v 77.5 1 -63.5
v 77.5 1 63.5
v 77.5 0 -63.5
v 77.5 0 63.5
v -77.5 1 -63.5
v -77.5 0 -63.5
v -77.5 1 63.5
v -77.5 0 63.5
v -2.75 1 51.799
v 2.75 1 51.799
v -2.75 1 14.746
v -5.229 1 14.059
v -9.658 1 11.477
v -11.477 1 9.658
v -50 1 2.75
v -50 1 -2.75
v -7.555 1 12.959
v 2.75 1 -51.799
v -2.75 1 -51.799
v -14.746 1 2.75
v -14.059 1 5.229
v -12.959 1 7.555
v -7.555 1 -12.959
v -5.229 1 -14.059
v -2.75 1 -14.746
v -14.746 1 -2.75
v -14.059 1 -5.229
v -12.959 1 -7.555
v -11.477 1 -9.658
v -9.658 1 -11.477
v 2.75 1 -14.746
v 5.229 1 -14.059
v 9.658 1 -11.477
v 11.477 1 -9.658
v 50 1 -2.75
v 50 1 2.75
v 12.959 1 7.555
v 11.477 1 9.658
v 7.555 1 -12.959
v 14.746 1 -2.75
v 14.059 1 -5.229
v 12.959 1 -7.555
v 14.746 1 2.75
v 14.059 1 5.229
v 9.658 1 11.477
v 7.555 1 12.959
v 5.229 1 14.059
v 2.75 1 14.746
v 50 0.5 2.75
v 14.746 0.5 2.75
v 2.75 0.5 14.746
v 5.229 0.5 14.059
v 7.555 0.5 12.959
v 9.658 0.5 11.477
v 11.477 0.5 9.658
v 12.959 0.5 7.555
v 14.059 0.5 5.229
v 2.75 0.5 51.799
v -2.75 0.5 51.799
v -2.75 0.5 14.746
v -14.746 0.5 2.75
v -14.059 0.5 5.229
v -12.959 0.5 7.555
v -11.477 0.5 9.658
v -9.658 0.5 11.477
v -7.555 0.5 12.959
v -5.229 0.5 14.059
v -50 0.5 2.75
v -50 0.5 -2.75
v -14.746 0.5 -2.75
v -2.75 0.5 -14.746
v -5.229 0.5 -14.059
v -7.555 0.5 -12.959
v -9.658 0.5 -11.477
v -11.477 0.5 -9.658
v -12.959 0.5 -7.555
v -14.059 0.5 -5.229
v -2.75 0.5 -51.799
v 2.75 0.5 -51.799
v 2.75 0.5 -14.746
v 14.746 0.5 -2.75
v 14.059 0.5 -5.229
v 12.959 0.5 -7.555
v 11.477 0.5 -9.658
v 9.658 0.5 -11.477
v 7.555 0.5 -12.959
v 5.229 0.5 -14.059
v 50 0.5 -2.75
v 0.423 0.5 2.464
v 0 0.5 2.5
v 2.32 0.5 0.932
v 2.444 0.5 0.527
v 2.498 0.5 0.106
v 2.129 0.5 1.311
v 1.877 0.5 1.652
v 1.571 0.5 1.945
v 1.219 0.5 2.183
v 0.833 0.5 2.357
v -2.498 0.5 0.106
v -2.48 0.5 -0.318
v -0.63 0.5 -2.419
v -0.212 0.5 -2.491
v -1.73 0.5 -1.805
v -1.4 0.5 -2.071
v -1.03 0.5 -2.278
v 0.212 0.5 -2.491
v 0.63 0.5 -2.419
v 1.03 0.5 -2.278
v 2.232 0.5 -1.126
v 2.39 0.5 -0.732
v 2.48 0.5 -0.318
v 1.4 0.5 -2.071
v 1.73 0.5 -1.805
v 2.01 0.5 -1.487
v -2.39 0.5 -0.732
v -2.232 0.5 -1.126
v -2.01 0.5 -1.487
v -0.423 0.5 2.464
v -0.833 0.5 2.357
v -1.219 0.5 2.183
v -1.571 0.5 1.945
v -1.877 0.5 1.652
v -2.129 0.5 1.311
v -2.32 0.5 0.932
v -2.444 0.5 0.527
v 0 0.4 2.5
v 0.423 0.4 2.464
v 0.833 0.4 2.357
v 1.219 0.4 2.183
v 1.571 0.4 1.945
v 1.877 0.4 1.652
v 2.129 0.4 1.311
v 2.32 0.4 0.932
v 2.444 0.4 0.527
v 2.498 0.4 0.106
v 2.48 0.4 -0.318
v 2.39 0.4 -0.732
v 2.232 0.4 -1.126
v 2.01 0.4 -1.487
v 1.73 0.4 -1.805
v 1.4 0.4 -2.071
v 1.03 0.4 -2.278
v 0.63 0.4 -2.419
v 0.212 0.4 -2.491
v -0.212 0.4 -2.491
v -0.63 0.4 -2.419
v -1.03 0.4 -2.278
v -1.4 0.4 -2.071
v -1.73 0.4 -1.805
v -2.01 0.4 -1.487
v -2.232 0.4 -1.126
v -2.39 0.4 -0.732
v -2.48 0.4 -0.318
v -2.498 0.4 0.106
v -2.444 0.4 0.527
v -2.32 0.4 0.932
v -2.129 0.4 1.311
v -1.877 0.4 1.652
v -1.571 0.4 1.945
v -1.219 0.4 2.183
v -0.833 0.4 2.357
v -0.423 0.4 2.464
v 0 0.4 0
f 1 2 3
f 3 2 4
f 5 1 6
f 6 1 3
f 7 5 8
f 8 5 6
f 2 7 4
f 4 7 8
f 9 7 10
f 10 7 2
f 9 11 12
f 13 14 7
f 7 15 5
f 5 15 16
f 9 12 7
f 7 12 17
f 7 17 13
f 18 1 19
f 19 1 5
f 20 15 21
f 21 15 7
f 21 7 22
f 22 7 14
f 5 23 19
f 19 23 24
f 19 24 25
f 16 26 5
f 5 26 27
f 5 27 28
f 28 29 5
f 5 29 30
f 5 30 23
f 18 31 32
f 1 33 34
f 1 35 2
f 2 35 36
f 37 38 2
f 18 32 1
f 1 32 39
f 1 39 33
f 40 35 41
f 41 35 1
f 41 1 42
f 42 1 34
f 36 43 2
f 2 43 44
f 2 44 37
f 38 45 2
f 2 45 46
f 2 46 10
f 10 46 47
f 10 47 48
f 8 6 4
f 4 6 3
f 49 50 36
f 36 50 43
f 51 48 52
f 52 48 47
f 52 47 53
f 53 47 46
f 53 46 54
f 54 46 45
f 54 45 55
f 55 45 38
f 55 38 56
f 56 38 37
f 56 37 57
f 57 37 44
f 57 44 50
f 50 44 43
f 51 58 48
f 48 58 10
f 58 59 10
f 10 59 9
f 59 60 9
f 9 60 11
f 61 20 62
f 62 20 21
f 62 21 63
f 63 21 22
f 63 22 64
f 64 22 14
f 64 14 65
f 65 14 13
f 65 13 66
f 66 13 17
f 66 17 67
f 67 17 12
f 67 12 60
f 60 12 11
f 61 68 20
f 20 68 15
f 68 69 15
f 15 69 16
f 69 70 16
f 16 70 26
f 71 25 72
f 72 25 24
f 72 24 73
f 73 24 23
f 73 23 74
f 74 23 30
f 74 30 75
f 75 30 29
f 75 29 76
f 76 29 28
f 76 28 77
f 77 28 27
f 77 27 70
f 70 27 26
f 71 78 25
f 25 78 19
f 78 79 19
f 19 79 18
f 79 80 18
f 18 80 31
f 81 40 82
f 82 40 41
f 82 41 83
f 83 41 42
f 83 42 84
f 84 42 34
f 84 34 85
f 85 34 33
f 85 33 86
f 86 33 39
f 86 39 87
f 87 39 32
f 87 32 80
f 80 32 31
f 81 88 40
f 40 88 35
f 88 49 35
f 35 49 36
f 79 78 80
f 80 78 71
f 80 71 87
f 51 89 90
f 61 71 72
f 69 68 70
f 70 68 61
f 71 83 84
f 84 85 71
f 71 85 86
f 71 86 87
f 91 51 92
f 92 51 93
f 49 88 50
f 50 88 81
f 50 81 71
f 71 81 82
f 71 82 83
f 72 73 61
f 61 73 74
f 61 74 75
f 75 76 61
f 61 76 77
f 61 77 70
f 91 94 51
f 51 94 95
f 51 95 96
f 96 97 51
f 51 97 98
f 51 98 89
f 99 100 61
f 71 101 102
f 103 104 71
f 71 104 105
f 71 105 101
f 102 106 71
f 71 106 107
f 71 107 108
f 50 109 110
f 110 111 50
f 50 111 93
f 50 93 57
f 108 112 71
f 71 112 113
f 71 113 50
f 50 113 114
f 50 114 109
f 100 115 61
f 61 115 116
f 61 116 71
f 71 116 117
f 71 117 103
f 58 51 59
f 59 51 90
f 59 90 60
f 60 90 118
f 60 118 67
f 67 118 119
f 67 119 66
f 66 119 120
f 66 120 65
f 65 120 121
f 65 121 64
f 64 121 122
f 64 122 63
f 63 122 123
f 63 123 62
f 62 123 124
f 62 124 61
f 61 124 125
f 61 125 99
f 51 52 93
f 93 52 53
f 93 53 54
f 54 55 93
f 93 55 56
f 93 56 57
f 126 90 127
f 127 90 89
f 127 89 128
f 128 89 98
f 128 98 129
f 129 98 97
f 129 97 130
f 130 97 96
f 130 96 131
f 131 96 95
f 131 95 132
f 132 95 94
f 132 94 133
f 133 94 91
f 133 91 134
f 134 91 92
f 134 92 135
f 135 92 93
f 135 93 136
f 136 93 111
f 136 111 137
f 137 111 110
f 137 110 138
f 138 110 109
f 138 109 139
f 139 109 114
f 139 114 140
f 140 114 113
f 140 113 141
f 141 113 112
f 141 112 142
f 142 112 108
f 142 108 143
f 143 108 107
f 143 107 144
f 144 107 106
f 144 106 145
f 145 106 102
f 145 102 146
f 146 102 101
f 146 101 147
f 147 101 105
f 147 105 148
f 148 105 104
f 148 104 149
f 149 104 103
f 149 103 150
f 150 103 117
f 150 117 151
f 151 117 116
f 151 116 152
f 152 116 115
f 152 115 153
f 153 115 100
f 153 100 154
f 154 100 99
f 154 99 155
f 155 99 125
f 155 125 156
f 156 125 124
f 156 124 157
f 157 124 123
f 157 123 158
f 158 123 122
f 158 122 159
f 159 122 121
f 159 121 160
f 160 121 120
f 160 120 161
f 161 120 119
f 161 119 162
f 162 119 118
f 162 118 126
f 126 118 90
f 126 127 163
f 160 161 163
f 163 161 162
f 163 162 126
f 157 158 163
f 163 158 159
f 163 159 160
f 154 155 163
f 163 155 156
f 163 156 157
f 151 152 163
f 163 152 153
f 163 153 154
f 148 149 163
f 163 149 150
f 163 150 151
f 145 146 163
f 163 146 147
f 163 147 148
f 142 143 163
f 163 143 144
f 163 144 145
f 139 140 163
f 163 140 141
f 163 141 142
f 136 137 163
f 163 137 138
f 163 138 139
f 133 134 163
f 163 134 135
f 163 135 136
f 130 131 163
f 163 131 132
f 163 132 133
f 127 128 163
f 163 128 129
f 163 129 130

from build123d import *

# Parameters (mm, degrees)
SKETCH1_W           = 155
SKETCH1_H           = 127
BOSS_EXTRUDE1_DEPTH = 1
CUT_EXTRUDE1_DEPTH  = 0.5
SKETCH3_R           = 2.5
CUT_EXTRUDE2_DEPTH  = 0.1


with BuildPart() as part:
    # Sketch1 → Boss-Extrude1 (new body)
    with BuildSketch(Plane(origin=(0, 0, 0), x_dir=(1, 0, 0), z_dir=(0, 1, 0))):
        Rectangle(SKETCH1_W, SKETCH1_H)
    extrude(amount=BOSS_EXTRUDE1_DEPTH)

    # Sketch2 → Cut-Extrude1 (cut)
    with BuildSketch(Plane(origin=(0, 1, 0), x_dir=(1, 0, 0), z_dir=(0, 1, 0))):
        with BuildLine():
            Line((2.75, -14.745762103), (2.75, -51.798849897))
            Line((2.75, -51.798849897), (-2.75, -51.798849897))
            Line((-2.75, -51.798849897), (-2.75, -14.745762103))
            ThreePointArc((-2.75, -14.745762103), (-10.606601718, -10.606601718), (-14.745762103, -2.75))
            Line((-14.745762103, -2.75), (-50, -2.75))
            Line((-50, -2.75), (-50, 2.75))
            Line((-50, 2.75), (-14.745762103, 2.75))
            ThreePointArc((-14.745762103, 2.75), (-10.606601718, 10.606601718), (-2.75, 14.745762103))
            Line((-2.75, 14.745762103), (-2.75, 51.798849897))
            Line((-2.75, 51.798849897), (2.75, 51.798849897))
            Line((2.75, 51.798849897), (2.75, 14.745762103))
            ThreePointArc((2.75, 14.745762103), (10.606601718, 10.606601718), (14.745762103, 2.75))
            Line((14.745762103, 2.75), (50, 2.75))
            Line((50, 2.75), (50, -2.75))
            Line((50, -2.75), (14.745762103, -2.75))
            ThreePointArc((14.745762103, -2.75), (10.606601718, -10.606601718), (2.75, -14.745762103))
        make_face()
    extrude(amount=-CUT_EXTRUDE1_DEPTH, mode=Mode.SUBTRACT)

    # Sketch3 → Cut-Extrude2 (cut)
    with BuildSketch(Plane(origin=(0, 0.5, 0), x_dir=(1, 0, 0), z_dir=(0, 1, 0))):
        with Locations(Location((0, 0, 0), (0, 0, 270))):
            Circle(SKETCH3_R)
    extrude(amount=-CUT_EXTRUDE2_DEPTH, mode=Mode.SUBTRACT)


solid = part.part
